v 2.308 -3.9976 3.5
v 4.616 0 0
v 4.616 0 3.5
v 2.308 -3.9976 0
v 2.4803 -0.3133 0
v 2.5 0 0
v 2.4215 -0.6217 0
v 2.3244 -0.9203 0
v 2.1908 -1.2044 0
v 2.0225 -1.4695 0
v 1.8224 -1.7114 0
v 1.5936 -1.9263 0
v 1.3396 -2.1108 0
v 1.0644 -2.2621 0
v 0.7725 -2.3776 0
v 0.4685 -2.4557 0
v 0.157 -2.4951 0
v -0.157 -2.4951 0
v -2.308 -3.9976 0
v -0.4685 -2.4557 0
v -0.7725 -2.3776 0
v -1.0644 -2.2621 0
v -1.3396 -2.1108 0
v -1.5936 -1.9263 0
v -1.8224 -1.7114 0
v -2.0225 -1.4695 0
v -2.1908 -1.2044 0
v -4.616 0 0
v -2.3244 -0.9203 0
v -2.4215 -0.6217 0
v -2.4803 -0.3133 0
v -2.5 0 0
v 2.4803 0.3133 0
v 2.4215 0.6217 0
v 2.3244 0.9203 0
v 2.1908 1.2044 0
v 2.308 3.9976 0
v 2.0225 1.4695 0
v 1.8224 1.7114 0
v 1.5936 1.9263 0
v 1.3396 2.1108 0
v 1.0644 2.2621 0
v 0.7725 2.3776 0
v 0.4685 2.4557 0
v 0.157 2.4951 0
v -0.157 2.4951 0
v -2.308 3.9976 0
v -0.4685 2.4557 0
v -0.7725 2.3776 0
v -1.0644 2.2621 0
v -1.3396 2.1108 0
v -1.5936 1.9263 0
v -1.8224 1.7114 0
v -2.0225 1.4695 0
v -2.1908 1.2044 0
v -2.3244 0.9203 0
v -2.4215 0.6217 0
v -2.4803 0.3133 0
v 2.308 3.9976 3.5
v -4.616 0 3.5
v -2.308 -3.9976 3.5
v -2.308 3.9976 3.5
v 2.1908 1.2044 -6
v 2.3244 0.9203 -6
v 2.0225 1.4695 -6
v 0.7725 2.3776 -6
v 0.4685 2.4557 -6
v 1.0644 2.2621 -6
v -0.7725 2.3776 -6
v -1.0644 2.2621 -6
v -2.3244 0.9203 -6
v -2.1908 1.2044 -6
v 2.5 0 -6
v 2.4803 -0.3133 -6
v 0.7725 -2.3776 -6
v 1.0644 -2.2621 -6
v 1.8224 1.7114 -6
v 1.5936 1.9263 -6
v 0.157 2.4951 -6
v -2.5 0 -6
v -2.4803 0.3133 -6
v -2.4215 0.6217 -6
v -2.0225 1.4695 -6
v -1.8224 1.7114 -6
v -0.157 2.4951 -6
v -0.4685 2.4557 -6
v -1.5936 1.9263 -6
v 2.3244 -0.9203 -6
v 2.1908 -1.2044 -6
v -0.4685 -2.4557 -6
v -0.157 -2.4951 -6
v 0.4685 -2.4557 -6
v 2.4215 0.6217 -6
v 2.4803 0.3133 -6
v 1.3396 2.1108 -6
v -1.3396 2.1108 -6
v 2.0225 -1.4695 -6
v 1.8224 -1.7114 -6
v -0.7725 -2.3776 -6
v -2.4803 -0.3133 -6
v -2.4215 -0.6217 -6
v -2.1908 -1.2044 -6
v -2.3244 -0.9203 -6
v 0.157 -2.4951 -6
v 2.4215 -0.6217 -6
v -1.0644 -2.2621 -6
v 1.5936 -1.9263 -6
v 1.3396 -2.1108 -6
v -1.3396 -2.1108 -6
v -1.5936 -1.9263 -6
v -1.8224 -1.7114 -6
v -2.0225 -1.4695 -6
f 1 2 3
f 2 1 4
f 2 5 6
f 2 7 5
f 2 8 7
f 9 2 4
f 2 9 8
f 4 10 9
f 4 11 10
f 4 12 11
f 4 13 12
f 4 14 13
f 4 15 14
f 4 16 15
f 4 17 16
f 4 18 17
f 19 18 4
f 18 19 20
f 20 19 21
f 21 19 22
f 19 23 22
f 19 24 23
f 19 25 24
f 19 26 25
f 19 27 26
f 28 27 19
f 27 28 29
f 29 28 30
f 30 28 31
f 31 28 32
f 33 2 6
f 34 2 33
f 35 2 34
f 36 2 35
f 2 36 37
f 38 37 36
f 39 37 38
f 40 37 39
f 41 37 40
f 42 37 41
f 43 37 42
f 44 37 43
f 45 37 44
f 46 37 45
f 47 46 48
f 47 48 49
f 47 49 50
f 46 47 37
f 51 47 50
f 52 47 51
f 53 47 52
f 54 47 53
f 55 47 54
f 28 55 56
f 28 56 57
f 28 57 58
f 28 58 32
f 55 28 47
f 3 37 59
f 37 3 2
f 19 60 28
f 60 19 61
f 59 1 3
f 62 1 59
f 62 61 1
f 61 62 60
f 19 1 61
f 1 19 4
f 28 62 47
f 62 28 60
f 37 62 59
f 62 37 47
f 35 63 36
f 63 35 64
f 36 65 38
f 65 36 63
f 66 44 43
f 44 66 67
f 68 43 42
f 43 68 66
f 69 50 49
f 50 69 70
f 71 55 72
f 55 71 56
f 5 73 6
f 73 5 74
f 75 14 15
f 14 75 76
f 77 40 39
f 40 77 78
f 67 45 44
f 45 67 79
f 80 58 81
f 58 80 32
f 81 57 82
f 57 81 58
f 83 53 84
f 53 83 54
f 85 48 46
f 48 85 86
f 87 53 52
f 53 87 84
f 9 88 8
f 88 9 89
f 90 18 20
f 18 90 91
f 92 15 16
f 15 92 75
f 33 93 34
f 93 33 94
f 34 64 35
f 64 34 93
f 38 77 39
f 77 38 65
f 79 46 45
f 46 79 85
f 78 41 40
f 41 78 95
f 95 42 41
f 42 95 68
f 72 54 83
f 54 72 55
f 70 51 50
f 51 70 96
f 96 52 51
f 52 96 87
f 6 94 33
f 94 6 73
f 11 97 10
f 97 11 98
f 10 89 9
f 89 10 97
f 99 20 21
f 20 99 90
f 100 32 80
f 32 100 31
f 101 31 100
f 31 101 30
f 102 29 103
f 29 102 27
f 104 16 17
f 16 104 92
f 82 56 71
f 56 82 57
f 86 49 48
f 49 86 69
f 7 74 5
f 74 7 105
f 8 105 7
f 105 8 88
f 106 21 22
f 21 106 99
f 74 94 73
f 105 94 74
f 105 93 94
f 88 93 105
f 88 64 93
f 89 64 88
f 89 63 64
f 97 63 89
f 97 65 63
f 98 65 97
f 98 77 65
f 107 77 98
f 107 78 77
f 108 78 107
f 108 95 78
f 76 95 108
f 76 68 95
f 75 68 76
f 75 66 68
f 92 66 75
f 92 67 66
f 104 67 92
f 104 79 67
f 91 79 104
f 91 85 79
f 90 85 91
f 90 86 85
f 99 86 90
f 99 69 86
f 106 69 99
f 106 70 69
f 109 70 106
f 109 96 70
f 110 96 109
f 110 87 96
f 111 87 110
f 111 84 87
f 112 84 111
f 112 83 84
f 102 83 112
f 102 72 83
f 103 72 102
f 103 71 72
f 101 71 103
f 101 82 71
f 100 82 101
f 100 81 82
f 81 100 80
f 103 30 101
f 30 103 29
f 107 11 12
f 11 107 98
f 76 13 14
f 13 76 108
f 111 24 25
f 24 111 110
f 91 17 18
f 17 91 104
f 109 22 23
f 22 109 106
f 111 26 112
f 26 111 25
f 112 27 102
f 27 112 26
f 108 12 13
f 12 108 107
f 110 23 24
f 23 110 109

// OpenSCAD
$fn = 50;


difference() {
	union() {
		translate(v = [0, 0, 0]) {
			rotate(a = [0, 0, 0]) {
				translate(v = [0, 0, 0]) {
					rotate(a = [0, 0, 0]) {
						linear_extrude(height = 3.5000000000) {
							polygon(points = [[4.6160000000, 0.0000000000], [2.3080000000, 3.9975732639], [-2.3080000000, 3.9975732639], [-4.6160000000, 0.0000000000], [-2.3080000000, -3.9975732639], [2.3080000000, -3.9975732639]]);
						}
					}
				}
			}
		}
		translate(v = [0, 0, -6]) {
			rotate(a = [0, 0, 0]) {
				cylinder(h = 6, r = 2.5000000000);
			}
		}
	}
	union();
}
